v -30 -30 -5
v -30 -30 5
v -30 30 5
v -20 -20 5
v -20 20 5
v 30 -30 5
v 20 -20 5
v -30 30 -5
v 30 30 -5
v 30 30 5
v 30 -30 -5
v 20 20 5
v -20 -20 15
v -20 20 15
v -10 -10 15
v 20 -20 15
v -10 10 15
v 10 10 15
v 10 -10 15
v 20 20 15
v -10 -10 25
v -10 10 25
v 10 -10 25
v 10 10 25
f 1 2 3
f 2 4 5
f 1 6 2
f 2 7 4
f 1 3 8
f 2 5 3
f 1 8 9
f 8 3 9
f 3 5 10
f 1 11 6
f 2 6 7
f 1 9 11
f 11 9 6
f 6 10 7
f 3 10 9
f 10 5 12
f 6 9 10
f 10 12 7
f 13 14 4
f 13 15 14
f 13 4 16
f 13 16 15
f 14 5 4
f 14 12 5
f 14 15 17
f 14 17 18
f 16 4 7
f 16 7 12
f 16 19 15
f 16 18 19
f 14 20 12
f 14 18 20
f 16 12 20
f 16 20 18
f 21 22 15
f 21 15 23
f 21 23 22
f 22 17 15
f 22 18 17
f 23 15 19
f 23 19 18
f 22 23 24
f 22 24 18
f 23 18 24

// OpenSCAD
// 一番下の段
cube([60, 60, 10], center=true);

// 二段目
translate([0, 0, 10])
    cube([40, 40, 10], center=true);

// 三段目
translate([0, 0, 20])
    cube([20, 20, 10], center=true);
